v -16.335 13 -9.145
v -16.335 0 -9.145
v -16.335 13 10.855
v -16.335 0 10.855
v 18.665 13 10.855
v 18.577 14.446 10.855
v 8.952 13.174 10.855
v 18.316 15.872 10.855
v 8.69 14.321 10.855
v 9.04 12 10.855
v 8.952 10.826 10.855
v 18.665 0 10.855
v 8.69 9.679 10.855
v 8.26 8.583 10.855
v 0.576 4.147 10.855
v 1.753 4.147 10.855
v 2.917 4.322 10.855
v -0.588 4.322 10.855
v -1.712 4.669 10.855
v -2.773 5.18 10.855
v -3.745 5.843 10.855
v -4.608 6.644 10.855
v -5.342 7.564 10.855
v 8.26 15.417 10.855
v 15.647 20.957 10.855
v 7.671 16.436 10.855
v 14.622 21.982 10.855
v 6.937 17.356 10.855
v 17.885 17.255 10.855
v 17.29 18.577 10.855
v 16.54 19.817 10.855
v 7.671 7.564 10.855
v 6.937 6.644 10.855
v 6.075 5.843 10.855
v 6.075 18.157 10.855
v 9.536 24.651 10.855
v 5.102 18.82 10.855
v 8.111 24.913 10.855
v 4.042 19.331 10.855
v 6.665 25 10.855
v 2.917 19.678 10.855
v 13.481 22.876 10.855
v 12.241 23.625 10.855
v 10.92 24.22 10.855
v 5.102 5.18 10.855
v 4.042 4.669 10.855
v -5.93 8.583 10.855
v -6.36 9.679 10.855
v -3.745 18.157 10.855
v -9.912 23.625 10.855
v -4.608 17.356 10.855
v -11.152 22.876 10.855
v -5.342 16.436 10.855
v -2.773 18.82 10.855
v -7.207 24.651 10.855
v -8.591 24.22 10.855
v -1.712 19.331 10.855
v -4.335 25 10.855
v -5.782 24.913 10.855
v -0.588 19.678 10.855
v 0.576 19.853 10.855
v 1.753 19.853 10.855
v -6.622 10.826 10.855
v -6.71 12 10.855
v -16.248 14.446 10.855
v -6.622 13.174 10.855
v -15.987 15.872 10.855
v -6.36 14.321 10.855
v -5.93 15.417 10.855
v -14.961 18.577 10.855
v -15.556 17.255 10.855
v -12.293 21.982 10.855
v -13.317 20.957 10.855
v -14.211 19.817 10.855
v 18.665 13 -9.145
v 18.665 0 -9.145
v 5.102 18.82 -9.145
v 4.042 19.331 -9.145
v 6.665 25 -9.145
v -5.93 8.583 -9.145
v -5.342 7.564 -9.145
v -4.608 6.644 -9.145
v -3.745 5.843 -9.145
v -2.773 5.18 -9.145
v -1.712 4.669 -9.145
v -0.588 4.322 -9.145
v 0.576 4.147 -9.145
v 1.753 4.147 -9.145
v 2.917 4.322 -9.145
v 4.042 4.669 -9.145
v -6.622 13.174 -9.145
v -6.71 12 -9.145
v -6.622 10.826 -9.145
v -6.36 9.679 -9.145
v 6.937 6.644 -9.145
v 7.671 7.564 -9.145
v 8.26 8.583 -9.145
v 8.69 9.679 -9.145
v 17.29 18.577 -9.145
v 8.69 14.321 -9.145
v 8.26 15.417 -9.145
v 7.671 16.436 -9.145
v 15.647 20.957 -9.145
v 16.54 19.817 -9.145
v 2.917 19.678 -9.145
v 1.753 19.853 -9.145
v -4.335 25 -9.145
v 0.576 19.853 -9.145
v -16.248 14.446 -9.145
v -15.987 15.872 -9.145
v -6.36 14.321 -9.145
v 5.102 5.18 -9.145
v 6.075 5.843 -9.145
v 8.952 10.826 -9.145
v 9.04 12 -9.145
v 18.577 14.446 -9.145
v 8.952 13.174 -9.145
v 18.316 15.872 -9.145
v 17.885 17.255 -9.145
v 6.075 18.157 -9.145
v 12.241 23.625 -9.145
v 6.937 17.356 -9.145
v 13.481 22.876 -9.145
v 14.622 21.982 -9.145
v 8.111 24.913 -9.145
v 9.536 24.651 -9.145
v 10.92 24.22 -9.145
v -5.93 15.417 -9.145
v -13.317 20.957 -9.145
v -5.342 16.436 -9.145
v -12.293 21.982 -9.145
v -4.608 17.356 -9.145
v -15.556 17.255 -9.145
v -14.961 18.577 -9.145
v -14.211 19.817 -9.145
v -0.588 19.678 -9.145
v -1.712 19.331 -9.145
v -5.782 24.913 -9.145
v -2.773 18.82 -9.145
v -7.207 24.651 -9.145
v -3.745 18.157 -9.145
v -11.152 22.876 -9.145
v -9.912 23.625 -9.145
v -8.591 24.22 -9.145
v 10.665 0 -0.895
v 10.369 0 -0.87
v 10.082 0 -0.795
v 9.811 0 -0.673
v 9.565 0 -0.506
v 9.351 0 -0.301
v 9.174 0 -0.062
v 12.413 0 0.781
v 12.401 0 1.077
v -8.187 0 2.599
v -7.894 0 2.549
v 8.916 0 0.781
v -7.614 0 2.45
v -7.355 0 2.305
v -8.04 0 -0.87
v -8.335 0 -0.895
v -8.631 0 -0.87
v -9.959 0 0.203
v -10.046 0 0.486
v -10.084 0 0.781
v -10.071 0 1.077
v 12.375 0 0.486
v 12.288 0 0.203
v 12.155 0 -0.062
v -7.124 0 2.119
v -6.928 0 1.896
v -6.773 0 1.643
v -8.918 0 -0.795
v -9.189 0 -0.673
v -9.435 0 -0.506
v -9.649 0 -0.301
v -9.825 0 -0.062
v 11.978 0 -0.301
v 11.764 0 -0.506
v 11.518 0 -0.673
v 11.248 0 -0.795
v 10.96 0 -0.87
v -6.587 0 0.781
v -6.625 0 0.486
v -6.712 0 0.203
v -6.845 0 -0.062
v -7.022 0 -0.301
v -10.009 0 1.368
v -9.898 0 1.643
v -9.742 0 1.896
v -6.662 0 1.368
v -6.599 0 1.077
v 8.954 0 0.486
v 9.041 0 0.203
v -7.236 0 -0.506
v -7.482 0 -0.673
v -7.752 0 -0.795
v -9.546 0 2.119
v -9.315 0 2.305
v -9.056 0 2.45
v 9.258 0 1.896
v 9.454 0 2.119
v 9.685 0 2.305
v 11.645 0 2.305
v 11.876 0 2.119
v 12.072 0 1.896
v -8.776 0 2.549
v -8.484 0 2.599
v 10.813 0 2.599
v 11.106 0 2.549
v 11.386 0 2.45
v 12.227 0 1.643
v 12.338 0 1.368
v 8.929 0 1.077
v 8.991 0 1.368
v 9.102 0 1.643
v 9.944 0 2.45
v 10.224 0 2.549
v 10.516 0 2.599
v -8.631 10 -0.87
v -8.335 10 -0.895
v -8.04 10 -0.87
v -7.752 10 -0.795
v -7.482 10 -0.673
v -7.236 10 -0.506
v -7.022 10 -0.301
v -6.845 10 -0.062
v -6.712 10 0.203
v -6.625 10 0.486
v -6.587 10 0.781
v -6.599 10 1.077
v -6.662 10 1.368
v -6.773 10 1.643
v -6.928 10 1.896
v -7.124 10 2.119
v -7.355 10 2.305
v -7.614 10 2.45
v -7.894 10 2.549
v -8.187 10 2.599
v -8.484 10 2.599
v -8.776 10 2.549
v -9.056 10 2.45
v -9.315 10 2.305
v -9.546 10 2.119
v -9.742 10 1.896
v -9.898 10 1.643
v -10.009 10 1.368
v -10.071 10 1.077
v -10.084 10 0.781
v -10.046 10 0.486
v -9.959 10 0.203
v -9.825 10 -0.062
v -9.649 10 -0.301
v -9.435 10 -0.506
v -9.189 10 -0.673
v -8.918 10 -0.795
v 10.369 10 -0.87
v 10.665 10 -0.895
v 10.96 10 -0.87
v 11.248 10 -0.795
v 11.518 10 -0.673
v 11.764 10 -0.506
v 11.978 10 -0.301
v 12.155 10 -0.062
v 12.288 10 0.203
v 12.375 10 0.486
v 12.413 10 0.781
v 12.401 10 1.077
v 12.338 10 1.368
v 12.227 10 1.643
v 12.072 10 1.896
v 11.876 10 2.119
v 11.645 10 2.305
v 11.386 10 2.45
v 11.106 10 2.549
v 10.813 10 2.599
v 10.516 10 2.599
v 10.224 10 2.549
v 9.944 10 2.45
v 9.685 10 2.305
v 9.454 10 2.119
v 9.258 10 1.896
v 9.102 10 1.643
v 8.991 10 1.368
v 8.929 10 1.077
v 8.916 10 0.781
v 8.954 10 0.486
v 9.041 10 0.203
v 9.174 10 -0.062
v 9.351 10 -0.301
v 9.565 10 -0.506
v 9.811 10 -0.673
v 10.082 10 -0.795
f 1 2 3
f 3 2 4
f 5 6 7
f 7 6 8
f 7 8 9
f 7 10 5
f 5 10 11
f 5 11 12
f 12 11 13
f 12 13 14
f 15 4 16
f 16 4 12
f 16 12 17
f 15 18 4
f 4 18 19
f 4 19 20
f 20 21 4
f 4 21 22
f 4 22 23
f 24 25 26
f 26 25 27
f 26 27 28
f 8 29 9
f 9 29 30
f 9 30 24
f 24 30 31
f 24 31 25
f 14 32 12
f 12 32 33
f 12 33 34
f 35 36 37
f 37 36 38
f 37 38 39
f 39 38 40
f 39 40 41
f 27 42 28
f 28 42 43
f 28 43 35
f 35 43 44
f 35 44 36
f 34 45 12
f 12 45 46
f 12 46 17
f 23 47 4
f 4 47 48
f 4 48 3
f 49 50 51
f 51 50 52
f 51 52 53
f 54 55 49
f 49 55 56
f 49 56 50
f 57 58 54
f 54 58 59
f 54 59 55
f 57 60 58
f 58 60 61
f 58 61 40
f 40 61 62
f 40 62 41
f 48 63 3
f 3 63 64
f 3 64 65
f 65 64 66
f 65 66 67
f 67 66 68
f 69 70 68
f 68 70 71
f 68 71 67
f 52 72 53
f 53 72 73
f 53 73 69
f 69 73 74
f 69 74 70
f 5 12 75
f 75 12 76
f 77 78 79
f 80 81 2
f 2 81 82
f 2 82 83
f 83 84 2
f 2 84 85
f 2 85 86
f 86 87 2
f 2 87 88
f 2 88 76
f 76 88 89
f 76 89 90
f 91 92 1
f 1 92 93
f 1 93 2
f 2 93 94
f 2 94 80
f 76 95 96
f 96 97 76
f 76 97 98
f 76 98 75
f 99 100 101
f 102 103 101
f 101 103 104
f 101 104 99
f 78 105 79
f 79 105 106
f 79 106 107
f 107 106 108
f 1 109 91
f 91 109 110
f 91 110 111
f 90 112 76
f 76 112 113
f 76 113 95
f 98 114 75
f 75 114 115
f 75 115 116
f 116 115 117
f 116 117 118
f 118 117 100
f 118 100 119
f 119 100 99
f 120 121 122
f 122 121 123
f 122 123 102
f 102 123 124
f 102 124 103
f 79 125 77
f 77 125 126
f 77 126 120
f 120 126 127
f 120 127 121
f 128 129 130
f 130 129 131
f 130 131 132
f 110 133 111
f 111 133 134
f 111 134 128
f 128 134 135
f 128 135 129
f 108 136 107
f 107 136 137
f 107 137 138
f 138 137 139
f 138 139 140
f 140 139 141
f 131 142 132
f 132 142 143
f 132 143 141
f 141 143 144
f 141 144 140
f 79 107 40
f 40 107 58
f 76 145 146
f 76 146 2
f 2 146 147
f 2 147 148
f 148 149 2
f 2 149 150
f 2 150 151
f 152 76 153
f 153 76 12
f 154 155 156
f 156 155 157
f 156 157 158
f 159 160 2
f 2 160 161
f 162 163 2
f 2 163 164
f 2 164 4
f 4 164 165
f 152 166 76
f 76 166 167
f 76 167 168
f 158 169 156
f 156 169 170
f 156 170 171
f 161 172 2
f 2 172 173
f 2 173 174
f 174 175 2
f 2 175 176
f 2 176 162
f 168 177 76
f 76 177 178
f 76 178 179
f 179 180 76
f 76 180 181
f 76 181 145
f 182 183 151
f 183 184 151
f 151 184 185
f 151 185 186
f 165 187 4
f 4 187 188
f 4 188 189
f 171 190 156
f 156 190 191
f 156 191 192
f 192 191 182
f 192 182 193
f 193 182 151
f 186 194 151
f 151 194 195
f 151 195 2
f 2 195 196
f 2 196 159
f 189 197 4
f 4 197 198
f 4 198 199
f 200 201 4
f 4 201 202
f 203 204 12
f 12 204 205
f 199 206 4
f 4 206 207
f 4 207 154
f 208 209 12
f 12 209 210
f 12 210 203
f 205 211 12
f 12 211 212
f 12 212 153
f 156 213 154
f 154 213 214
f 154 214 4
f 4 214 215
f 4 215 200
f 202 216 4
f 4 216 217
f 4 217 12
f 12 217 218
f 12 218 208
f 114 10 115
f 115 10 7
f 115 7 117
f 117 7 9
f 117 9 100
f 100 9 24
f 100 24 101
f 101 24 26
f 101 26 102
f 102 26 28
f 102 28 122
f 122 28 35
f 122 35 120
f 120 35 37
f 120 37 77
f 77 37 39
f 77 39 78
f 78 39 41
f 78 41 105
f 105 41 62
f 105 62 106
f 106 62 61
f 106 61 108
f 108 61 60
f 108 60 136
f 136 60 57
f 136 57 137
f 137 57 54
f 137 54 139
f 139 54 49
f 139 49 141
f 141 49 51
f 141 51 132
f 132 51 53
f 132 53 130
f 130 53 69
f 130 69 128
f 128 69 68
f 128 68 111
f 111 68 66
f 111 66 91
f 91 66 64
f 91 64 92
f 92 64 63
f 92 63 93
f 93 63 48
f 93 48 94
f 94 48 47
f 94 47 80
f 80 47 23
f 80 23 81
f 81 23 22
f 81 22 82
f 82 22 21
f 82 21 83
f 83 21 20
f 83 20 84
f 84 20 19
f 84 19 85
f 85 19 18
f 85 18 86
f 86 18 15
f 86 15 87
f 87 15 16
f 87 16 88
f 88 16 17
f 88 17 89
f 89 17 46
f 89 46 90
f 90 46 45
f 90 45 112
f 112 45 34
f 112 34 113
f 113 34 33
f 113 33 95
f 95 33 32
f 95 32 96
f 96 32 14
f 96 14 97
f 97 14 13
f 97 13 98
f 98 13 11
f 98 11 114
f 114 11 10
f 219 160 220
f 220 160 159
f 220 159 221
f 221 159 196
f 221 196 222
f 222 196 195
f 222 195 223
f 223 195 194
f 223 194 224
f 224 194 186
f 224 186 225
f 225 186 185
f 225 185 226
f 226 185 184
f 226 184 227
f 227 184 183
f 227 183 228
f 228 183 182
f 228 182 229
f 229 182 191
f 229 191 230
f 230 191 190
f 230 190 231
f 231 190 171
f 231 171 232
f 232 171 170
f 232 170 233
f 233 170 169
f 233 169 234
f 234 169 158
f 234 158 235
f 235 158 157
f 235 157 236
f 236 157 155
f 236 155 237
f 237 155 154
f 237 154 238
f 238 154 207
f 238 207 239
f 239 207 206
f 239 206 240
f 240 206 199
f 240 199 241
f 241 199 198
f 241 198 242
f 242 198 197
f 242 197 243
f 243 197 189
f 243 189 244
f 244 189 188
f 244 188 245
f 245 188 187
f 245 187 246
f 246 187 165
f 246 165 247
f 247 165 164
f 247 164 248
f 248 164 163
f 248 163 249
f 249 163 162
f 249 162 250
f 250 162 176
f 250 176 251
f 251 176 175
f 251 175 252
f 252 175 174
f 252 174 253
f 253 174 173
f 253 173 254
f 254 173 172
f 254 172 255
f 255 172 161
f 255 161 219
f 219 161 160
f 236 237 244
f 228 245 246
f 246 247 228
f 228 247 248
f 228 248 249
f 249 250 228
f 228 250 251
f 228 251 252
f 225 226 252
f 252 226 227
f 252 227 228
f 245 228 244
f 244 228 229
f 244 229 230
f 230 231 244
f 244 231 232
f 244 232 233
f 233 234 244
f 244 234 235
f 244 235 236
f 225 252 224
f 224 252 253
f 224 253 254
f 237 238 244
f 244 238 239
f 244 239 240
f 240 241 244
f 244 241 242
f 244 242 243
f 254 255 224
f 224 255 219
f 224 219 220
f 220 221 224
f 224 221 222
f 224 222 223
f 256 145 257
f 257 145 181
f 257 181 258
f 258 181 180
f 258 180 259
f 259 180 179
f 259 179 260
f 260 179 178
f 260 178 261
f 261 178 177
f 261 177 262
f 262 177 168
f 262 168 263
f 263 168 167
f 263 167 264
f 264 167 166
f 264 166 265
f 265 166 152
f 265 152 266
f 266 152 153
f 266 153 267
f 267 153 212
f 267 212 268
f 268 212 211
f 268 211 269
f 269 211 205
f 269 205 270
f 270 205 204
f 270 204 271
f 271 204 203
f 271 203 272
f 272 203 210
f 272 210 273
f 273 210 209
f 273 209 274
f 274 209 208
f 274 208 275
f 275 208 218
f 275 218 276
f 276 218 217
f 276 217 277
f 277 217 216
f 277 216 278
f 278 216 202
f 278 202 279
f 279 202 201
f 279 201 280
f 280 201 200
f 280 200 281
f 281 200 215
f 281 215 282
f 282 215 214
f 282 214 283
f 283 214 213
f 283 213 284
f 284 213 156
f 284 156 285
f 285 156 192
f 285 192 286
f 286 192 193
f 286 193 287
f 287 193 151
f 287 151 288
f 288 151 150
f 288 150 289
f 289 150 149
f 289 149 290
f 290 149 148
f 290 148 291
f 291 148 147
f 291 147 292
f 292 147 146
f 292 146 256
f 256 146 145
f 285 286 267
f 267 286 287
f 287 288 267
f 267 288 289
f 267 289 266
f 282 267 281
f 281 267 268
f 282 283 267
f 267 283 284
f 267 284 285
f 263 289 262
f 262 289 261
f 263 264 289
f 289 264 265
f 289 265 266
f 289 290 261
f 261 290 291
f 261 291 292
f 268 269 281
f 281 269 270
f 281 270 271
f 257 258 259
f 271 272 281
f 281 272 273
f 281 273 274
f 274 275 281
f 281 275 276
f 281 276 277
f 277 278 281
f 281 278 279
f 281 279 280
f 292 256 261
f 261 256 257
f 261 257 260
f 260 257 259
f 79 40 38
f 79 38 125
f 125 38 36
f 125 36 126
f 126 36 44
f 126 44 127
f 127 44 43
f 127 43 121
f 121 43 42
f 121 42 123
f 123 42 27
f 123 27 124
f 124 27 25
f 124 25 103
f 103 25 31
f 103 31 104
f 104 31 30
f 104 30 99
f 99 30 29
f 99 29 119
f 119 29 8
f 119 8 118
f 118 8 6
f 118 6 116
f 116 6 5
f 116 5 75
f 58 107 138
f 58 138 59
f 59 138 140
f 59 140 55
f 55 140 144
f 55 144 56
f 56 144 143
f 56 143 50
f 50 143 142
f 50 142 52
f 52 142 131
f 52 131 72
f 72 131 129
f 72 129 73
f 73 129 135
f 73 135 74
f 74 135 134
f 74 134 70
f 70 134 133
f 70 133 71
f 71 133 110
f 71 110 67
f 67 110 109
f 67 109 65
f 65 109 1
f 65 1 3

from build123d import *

# Parameters (mm, degrees)
SKETCH1_W           = 35
SKETCH1_H           = 20
BOSS_EXTRUDE1_DEPTH = 25
SKETCH2_R           = 7.875
CUT_EXTRUDE1_DEPTH  = 21
SKETCH3_R           = 1.75
CUT_EXTRUDE2_DEPTH  = 10
FILLET1_R           = 12


with BuildPart() as part:
    # Sketch1 → Boss-Extrude1 (new body)
    with BuildSketch(Plane(origin=(0, 0, 0), x_dir=(1, 0, 0), z_dir=(0, 1, 0))):
        with Locations((1.164675851, -0.855170824)):
            Rectangle(SKETCH1_W, SKETCH1_H)
    extrude(amount=BOSS_EXTRUDE1_DEPTH)

    # Sketch2 → Cut-Extrude1 (cut, through all)
    with BuildSketch(Plane.XY.offset(10.855170824)):
        with Locations((1.164675851, 12)):
            Circle(SKETCH2_R)
    extrude(amount=-CUT_EXTRUDE1_DEPTH, mode=Mode.SUBTRACT)

    # Sketch3 → Cut-Extrude2 (cut)
    with BuildSketch(Plane.XZ):
        with Locations((-8.335324149, 0.855170824)):
            Circle(SKETCH3_R)
        with Locations((10.664675851, 0.855170824)):
            Circle(SKETCH3_R)
    extrude(amount=-CUT_EXTRUDE2_DEPTH, mode=Mode.SUBTRACT)

    # Fillet1
    fillet1_edges = [part.edges().sort_by_distance(p)[0] for p in [
        (18.664675851, 25, 0.855170824),
        (-16.335324149, 25, 0.855170824),
    ]]
    fillet(fillet1_edges, radius=FILLET1_R)


solid = part.part
